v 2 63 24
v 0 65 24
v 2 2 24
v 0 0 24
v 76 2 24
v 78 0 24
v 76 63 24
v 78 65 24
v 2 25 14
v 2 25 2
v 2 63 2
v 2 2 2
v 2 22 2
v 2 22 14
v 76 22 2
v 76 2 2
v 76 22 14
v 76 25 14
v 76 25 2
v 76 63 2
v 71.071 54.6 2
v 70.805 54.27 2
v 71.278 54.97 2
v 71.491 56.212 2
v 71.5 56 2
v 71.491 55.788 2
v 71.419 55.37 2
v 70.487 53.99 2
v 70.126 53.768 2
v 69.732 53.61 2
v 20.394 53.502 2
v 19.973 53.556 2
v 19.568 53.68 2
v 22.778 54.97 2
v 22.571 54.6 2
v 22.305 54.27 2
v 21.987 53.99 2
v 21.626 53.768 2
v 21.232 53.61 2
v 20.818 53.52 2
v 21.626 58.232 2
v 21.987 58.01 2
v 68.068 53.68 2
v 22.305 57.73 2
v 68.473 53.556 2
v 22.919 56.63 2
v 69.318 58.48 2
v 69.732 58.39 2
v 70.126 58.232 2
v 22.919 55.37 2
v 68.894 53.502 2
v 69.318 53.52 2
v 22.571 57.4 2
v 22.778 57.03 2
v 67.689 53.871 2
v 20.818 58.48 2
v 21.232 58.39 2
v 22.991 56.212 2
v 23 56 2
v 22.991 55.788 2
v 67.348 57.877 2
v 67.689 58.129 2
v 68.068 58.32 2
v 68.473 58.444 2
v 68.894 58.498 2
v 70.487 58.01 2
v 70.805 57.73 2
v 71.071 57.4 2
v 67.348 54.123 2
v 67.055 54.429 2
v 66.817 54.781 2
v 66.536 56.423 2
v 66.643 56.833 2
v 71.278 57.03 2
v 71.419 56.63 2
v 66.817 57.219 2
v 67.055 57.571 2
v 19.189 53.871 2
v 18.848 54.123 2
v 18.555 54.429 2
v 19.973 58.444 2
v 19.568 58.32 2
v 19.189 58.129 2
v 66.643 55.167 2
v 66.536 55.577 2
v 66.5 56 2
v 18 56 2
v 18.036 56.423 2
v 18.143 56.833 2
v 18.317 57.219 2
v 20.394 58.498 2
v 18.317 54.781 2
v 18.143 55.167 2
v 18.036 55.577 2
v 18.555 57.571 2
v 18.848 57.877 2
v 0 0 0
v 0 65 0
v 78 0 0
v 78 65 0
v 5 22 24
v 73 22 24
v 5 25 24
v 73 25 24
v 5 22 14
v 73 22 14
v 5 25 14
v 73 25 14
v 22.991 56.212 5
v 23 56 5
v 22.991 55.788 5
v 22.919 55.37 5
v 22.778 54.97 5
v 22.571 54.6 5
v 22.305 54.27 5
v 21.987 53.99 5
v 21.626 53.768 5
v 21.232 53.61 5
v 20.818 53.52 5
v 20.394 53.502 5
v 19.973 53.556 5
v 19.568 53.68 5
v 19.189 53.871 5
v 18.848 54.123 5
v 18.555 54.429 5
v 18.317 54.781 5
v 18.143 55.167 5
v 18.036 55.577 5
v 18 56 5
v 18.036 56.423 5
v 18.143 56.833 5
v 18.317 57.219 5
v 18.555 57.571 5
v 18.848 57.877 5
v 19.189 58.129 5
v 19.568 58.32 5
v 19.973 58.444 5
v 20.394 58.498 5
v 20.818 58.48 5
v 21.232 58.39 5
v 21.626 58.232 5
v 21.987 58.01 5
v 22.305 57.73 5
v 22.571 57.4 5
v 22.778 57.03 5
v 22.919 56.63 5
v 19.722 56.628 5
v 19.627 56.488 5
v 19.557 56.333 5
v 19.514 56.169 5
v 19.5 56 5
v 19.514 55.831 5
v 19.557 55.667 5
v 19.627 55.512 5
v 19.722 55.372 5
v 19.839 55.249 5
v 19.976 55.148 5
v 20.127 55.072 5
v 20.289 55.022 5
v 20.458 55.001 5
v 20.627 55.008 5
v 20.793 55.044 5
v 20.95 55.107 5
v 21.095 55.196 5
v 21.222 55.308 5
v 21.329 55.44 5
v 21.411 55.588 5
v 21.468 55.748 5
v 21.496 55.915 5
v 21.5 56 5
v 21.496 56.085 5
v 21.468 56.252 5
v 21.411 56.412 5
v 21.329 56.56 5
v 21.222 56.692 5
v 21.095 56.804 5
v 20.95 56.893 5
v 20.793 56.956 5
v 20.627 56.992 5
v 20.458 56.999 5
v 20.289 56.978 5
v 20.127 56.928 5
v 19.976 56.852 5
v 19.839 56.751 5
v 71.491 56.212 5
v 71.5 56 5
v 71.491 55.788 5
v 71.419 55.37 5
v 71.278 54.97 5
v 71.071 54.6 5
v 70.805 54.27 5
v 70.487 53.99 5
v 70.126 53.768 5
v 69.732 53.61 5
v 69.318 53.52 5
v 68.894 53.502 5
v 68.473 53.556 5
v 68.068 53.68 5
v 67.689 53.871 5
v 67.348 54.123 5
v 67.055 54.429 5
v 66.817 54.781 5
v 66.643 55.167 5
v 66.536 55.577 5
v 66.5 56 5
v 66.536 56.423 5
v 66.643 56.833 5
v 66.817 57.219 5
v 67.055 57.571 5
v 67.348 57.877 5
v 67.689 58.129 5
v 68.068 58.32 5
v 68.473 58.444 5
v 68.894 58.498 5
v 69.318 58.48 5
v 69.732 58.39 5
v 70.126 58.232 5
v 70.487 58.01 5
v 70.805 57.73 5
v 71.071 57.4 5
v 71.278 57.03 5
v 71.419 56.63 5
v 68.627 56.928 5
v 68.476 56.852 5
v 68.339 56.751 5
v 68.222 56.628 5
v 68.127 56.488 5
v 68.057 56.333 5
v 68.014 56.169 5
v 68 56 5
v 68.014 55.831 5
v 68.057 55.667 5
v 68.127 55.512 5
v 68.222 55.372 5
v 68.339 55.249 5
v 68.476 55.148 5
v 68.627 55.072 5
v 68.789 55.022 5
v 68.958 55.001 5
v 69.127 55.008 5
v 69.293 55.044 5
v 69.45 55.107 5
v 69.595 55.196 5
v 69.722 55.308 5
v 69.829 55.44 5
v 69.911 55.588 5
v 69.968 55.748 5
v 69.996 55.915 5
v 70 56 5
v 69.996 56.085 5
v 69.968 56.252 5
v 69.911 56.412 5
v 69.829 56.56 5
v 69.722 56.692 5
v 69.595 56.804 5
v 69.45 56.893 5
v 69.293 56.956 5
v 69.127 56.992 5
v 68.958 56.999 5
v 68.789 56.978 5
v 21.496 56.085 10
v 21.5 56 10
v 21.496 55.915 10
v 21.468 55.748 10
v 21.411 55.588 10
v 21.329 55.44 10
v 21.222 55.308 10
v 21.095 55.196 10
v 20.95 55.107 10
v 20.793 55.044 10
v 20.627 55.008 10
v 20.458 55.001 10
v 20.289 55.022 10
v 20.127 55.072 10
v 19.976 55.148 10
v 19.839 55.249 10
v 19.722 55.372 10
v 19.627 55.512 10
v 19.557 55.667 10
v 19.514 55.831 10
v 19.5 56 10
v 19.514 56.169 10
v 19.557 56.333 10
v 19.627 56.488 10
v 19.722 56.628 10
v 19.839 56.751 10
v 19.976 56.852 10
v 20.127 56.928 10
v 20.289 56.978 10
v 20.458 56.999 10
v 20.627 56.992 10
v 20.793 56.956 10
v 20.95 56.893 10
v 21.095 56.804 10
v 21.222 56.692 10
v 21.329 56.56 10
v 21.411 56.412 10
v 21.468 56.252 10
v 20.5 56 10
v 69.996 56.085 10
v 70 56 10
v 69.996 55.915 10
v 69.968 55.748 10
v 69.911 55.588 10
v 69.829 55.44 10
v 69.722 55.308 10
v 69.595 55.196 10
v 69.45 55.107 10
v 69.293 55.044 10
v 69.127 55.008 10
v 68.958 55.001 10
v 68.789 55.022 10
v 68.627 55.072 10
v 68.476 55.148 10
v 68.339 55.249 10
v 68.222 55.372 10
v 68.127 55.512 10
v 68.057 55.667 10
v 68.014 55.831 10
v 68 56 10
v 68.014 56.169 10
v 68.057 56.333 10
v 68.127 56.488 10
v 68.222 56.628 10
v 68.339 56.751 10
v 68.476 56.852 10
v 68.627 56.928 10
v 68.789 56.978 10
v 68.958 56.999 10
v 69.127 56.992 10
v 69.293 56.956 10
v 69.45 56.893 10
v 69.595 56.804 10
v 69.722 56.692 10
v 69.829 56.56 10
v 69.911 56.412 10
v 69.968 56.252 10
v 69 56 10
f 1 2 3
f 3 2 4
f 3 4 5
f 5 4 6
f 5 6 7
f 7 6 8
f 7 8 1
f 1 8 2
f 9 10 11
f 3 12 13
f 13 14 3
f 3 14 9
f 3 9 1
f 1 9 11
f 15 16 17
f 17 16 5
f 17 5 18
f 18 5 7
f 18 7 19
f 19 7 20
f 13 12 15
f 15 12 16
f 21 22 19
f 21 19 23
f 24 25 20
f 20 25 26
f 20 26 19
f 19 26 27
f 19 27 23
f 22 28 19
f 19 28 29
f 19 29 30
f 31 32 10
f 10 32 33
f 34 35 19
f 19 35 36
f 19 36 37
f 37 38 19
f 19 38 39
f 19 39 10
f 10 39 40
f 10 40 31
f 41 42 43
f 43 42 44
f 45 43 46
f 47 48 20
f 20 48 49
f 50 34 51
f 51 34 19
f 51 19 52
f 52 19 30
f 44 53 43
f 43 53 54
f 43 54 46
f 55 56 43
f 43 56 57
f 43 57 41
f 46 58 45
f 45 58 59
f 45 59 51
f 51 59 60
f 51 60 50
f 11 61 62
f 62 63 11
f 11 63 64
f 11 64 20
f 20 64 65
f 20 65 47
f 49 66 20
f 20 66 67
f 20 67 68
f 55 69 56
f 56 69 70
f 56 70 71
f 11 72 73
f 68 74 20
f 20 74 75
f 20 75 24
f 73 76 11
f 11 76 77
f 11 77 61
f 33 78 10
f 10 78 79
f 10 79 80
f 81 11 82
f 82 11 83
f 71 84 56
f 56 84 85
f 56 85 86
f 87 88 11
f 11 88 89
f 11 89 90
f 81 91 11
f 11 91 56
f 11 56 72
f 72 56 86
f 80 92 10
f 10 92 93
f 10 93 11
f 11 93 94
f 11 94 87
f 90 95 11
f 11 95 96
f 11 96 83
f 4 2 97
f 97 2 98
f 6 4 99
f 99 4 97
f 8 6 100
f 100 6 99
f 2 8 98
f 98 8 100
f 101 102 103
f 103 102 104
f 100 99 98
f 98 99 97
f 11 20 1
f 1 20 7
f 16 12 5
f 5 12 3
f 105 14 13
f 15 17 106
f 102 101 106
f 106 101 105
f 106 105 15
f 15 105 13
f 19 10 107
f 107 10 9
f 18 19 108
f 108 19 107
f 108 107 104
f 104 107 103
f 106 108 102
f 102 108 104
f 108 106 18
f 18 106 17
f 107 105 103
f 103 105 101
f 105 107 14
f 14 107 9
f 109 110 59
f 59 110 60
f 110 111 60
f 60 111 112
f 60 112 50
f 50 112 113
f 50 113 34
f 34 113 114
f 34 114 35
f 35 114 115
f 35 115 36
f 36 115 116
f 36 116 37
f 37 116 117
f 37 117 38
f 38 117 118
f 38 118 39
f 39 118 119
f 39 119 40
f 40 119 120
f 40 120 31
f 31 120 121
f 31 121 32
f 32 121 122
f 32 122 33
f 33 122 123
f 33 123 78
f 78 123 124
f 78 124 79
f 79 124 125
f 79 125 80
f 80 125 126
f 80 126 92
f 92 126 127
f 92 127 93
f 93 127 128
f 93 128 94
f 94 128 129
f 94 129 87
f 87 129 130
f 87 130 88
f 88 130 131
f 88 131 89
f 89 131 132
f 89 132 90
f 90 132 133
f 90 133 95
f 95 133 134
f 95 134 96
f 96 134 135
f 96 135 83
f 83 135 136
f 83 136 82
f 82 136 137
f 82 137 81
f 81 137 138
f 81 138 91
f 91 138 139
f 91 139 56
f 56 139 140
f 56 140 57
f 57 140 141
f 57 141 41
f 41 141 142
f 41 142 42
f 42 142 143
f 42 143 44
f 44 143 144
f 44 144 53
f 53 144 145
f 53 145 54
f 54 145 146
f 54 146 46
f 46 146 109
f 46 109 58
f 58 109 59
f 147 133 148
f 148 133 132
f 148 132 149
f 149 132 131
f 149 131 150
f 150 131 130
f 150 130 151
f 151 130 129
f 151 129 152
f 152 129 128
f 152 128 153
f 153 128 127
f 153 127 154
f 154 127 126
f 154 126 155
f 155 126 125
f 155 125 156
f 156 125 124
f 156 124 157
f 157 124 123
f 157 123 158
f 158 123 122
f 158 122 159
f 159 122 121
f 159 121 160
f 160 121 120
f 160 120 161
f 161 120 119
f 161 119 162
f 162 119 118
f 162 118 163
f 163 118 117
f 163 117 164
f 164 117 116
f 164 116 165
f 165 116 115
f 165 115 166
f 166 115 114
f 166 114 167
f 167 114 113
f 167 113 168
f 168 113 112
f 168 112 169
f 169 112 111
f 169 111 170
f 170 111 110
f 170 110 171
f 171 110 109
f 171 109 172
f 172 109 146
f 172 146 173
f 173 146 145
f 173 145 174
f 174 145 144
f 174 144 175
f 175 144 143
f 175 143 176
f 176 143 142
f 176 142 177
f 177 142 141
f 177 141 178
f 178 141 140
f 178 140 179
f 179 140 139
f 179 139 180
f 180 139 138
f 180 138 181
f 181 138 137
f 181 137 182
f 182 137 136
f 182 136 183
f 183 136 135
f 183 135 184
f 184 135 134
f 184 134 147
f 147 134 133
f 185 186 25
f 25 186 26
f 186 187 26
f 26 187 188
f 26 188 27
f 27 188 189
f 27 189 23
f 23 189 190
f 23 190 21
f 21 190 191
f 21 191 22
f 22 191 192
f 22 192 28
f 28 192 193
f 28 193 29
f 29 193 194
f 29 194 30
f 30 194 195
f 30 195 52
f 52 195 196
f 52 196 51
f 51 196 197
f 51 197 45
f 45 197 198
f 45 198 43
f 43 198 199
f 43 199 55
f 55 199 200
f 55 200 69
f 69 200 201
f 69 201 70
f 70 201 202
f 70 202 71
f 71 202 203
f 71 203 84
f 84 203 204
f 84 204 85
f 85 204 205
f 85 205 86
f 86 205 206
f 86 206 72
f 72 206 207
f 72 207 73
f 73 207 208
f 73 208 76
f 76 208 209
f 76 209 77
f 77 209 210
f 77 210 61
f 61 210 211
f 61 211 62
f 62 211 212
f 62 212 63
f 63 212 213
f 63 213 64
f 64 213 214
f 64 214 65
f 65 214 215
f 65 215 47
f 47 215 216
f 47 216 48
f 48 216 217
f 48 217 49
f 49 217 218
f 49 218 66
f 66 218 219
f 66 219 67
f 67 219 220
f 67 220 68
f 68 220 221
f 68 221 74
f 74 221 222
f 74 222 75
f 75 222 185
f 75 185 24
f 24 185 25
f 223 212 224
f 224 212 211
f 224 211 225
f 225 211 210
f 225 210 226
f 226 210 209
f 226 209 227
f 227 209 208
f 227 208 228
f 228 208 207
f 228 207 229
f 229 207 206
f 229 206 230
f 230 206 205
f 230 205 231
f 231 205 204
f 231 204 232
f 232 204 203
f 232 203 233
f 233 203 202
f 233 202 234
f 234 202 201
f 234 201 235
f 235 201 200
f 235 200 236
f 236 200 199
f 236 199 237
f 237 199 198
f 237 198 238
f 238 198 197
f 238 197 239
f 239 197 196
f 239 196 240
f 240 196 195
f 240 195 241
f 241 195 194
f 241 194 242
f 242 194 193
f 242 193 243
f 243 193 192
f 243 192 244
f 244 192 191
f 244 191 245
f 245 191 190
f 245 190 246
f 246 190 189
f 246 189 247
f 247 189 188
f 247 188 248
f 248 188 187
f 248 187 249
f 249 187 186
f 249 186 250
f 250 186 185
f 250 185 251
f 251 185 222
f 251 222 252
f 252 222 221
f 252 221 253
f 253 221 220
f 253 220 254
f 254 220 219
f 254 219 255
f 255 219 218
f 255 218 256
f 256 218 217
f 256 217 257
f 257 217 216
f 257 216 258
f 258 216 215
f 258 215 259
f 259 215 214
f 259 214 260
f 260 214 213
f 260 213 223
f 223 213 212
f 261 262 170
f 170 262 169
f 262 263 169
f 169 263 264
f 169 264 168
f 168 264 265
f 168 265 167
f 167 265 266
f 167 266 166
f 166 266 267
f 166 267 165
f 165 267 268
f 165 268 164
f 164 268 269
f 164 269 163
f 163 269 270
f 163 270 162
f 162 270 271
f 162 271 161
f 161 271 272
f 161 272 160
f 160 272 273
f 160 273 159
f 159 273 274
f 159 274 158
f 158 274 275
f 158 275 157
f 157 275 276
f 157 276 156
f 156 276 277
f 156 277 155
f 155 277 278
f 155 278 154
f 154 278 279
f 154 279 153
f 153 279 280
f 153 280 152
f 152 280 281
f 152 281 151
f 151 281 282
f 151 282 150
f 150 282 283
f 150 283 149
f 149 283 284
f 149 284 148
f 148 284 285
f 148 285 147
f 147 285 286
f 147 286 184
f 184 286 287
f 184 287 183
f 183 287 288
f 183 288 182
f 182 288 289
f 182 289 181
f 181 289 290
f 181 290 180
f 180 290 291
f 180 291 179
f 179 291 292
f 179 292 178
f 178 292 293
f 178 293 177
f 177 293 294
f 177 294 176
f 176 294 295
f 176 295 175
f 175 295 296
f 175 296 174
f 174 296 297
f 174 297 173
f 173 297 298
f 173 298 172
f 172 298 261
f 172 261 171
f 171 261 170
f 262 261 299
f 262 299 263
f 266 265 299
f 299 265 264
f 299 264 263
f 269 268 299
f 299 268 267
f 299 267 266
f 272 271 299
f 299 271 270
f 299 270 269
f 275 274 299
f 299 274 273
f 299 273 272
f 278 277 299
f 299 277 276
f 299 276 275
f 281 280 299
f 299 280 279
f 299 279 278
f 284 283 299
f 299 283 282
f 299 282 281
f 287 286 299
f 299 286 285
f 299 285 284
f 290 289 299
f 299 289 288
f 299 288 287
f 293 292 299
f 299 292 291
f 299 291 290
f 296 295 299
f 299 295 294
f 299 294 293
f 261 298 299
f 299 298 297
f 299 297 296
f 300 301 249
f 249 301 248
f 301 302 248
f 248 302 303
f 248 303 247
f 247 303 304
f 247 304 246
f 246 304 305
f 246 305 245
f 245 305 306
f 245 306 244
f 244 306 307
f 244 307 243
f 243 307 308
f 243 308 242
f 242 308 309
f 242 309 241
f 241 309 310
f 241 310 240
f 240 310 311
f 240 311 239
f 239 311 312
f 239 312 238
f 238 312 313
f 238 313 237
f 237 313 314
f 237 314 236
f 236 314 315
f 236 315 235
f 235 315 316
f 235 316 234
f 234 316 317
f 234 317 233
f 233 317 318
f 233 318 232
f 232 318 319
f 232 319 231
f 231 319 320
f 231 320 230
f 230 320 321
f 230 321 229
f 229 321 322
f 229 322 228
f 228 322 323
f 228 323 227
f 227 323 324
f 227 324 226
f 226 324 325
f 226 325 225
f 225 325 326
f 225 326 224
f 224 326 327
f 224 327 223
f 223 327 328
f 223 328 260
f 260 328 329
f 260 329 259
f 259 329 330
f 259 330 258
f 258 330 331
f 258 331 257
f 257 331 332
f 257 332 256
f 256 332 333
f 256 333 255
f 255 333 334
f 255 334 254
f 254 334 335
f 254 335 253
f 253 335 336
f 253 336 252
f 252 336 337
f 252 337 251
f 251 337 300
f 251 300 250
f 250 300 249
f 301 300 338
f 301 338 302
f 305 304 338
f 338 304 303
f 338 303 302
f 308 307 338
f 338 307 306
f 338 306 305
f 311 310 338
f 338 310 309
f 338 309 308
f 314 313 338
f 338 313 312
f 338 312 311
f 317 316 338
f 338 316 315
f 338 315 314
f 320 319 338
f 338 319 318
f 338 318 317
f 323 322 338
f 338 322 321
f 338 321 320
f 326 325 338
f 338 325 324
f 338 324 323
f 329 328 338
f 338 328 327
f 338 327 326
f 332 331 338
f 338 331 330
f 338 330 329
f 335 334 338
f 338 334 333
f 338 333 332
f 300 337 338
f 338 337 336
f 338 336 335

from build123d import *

# Parameters (mm, degrees)
SKETCH1_W           = 78
SKETCH1_H           = 65
BOSS_EXTRUDE1_DEPTH = 24
SKETCH2_W           = 74
SKETCH2_H           = 61
CUT_EXTRUDE1_DEPTH  = 22
SKETCH3_W           = 74
SKETCH3_H           = 3
BOSS_EXTRUDE2_DEPTH = 22
SKETCH4_W           = 3
SKETCH4_H           = 3
CUT_EXTRUDE2_DEPTH  = 10
SKETCH5_R           = 2.5
BOSS_EXTRUDE3_DEPTH = 3
SKETCH6_R           = 1
BOSS_EXTRUDE4_DEPTH = 5


with BuildPart() as part:
    # Sketch1 → Boss-Extrude1 (new body)
    with BuildSketch(Plane.XY):
        with Locations((39, 32.5)):
            Rectangle(SKETCH1_W, SKETCH1_H)
    extrude(amount=BOSS_EXTRUDE1_DEPTH)

    # Sketch2 → Cut-Extrude1 (cut)
    with BuildSketch(Plane.XY.offset(24)):
        with Locations((39, 32.5)):
            Rectangle(SKETCH2_W, SKETCH2_H)
    extrude(amount=-CUT_EXTRUDE1_DEPTH, mode=Mode.SUBTRACT)

    # Sketch3 → Boss-Extrude2 (add)
    with BuildSketch(Plane.XY.offset(2)):
        with Locations((39, 23.5)):
            Rectangle(SKETCH3_W, SKETCH3_H)
    extrude(amount=BOSS_EXTRUDE2_DEPTH)

    # Sketch4 → Cut-Extrude2 (cut)
    with BuildSketch(Plane.XY.offset(24)):
        with Locations((3.5, 23.5)):
            Rectangle(SKETCH4_W, SKETCH4_H)
        with Locations((74.5, 23.5)):
            Rectangle(SKETCH4_W, SKETCH4_H)
    extrude(amount=-CUT_EXTRUDE2_DEPTH, mode=Mode.SUBTRACT)

    # Sketch5 → Boss-Extrude3 (add)
    with BuildSketch(Plane.XY.offset(2)):
        with Locations((20.5, 56)):
            Circle(SKETCH5_R)
        with Locations((69, 56)):
            Circle(SKETCH5_R)
    extrude(amount=BOSS_EXTRUDE3_DEPTH)

    # Sketch6 → Boss-Extrude4 (add)
    with BuildSketch(Plane.XY.offset(5)):
        with Locations((20.5, 56)):
            Circle(SKETCH6_R)
        with Locations((69, 56)):
            Circle(SKETCH6_R)
    extrude(amount=BOSS_EXTRUDE4_DEPTH)


solid = part.part
